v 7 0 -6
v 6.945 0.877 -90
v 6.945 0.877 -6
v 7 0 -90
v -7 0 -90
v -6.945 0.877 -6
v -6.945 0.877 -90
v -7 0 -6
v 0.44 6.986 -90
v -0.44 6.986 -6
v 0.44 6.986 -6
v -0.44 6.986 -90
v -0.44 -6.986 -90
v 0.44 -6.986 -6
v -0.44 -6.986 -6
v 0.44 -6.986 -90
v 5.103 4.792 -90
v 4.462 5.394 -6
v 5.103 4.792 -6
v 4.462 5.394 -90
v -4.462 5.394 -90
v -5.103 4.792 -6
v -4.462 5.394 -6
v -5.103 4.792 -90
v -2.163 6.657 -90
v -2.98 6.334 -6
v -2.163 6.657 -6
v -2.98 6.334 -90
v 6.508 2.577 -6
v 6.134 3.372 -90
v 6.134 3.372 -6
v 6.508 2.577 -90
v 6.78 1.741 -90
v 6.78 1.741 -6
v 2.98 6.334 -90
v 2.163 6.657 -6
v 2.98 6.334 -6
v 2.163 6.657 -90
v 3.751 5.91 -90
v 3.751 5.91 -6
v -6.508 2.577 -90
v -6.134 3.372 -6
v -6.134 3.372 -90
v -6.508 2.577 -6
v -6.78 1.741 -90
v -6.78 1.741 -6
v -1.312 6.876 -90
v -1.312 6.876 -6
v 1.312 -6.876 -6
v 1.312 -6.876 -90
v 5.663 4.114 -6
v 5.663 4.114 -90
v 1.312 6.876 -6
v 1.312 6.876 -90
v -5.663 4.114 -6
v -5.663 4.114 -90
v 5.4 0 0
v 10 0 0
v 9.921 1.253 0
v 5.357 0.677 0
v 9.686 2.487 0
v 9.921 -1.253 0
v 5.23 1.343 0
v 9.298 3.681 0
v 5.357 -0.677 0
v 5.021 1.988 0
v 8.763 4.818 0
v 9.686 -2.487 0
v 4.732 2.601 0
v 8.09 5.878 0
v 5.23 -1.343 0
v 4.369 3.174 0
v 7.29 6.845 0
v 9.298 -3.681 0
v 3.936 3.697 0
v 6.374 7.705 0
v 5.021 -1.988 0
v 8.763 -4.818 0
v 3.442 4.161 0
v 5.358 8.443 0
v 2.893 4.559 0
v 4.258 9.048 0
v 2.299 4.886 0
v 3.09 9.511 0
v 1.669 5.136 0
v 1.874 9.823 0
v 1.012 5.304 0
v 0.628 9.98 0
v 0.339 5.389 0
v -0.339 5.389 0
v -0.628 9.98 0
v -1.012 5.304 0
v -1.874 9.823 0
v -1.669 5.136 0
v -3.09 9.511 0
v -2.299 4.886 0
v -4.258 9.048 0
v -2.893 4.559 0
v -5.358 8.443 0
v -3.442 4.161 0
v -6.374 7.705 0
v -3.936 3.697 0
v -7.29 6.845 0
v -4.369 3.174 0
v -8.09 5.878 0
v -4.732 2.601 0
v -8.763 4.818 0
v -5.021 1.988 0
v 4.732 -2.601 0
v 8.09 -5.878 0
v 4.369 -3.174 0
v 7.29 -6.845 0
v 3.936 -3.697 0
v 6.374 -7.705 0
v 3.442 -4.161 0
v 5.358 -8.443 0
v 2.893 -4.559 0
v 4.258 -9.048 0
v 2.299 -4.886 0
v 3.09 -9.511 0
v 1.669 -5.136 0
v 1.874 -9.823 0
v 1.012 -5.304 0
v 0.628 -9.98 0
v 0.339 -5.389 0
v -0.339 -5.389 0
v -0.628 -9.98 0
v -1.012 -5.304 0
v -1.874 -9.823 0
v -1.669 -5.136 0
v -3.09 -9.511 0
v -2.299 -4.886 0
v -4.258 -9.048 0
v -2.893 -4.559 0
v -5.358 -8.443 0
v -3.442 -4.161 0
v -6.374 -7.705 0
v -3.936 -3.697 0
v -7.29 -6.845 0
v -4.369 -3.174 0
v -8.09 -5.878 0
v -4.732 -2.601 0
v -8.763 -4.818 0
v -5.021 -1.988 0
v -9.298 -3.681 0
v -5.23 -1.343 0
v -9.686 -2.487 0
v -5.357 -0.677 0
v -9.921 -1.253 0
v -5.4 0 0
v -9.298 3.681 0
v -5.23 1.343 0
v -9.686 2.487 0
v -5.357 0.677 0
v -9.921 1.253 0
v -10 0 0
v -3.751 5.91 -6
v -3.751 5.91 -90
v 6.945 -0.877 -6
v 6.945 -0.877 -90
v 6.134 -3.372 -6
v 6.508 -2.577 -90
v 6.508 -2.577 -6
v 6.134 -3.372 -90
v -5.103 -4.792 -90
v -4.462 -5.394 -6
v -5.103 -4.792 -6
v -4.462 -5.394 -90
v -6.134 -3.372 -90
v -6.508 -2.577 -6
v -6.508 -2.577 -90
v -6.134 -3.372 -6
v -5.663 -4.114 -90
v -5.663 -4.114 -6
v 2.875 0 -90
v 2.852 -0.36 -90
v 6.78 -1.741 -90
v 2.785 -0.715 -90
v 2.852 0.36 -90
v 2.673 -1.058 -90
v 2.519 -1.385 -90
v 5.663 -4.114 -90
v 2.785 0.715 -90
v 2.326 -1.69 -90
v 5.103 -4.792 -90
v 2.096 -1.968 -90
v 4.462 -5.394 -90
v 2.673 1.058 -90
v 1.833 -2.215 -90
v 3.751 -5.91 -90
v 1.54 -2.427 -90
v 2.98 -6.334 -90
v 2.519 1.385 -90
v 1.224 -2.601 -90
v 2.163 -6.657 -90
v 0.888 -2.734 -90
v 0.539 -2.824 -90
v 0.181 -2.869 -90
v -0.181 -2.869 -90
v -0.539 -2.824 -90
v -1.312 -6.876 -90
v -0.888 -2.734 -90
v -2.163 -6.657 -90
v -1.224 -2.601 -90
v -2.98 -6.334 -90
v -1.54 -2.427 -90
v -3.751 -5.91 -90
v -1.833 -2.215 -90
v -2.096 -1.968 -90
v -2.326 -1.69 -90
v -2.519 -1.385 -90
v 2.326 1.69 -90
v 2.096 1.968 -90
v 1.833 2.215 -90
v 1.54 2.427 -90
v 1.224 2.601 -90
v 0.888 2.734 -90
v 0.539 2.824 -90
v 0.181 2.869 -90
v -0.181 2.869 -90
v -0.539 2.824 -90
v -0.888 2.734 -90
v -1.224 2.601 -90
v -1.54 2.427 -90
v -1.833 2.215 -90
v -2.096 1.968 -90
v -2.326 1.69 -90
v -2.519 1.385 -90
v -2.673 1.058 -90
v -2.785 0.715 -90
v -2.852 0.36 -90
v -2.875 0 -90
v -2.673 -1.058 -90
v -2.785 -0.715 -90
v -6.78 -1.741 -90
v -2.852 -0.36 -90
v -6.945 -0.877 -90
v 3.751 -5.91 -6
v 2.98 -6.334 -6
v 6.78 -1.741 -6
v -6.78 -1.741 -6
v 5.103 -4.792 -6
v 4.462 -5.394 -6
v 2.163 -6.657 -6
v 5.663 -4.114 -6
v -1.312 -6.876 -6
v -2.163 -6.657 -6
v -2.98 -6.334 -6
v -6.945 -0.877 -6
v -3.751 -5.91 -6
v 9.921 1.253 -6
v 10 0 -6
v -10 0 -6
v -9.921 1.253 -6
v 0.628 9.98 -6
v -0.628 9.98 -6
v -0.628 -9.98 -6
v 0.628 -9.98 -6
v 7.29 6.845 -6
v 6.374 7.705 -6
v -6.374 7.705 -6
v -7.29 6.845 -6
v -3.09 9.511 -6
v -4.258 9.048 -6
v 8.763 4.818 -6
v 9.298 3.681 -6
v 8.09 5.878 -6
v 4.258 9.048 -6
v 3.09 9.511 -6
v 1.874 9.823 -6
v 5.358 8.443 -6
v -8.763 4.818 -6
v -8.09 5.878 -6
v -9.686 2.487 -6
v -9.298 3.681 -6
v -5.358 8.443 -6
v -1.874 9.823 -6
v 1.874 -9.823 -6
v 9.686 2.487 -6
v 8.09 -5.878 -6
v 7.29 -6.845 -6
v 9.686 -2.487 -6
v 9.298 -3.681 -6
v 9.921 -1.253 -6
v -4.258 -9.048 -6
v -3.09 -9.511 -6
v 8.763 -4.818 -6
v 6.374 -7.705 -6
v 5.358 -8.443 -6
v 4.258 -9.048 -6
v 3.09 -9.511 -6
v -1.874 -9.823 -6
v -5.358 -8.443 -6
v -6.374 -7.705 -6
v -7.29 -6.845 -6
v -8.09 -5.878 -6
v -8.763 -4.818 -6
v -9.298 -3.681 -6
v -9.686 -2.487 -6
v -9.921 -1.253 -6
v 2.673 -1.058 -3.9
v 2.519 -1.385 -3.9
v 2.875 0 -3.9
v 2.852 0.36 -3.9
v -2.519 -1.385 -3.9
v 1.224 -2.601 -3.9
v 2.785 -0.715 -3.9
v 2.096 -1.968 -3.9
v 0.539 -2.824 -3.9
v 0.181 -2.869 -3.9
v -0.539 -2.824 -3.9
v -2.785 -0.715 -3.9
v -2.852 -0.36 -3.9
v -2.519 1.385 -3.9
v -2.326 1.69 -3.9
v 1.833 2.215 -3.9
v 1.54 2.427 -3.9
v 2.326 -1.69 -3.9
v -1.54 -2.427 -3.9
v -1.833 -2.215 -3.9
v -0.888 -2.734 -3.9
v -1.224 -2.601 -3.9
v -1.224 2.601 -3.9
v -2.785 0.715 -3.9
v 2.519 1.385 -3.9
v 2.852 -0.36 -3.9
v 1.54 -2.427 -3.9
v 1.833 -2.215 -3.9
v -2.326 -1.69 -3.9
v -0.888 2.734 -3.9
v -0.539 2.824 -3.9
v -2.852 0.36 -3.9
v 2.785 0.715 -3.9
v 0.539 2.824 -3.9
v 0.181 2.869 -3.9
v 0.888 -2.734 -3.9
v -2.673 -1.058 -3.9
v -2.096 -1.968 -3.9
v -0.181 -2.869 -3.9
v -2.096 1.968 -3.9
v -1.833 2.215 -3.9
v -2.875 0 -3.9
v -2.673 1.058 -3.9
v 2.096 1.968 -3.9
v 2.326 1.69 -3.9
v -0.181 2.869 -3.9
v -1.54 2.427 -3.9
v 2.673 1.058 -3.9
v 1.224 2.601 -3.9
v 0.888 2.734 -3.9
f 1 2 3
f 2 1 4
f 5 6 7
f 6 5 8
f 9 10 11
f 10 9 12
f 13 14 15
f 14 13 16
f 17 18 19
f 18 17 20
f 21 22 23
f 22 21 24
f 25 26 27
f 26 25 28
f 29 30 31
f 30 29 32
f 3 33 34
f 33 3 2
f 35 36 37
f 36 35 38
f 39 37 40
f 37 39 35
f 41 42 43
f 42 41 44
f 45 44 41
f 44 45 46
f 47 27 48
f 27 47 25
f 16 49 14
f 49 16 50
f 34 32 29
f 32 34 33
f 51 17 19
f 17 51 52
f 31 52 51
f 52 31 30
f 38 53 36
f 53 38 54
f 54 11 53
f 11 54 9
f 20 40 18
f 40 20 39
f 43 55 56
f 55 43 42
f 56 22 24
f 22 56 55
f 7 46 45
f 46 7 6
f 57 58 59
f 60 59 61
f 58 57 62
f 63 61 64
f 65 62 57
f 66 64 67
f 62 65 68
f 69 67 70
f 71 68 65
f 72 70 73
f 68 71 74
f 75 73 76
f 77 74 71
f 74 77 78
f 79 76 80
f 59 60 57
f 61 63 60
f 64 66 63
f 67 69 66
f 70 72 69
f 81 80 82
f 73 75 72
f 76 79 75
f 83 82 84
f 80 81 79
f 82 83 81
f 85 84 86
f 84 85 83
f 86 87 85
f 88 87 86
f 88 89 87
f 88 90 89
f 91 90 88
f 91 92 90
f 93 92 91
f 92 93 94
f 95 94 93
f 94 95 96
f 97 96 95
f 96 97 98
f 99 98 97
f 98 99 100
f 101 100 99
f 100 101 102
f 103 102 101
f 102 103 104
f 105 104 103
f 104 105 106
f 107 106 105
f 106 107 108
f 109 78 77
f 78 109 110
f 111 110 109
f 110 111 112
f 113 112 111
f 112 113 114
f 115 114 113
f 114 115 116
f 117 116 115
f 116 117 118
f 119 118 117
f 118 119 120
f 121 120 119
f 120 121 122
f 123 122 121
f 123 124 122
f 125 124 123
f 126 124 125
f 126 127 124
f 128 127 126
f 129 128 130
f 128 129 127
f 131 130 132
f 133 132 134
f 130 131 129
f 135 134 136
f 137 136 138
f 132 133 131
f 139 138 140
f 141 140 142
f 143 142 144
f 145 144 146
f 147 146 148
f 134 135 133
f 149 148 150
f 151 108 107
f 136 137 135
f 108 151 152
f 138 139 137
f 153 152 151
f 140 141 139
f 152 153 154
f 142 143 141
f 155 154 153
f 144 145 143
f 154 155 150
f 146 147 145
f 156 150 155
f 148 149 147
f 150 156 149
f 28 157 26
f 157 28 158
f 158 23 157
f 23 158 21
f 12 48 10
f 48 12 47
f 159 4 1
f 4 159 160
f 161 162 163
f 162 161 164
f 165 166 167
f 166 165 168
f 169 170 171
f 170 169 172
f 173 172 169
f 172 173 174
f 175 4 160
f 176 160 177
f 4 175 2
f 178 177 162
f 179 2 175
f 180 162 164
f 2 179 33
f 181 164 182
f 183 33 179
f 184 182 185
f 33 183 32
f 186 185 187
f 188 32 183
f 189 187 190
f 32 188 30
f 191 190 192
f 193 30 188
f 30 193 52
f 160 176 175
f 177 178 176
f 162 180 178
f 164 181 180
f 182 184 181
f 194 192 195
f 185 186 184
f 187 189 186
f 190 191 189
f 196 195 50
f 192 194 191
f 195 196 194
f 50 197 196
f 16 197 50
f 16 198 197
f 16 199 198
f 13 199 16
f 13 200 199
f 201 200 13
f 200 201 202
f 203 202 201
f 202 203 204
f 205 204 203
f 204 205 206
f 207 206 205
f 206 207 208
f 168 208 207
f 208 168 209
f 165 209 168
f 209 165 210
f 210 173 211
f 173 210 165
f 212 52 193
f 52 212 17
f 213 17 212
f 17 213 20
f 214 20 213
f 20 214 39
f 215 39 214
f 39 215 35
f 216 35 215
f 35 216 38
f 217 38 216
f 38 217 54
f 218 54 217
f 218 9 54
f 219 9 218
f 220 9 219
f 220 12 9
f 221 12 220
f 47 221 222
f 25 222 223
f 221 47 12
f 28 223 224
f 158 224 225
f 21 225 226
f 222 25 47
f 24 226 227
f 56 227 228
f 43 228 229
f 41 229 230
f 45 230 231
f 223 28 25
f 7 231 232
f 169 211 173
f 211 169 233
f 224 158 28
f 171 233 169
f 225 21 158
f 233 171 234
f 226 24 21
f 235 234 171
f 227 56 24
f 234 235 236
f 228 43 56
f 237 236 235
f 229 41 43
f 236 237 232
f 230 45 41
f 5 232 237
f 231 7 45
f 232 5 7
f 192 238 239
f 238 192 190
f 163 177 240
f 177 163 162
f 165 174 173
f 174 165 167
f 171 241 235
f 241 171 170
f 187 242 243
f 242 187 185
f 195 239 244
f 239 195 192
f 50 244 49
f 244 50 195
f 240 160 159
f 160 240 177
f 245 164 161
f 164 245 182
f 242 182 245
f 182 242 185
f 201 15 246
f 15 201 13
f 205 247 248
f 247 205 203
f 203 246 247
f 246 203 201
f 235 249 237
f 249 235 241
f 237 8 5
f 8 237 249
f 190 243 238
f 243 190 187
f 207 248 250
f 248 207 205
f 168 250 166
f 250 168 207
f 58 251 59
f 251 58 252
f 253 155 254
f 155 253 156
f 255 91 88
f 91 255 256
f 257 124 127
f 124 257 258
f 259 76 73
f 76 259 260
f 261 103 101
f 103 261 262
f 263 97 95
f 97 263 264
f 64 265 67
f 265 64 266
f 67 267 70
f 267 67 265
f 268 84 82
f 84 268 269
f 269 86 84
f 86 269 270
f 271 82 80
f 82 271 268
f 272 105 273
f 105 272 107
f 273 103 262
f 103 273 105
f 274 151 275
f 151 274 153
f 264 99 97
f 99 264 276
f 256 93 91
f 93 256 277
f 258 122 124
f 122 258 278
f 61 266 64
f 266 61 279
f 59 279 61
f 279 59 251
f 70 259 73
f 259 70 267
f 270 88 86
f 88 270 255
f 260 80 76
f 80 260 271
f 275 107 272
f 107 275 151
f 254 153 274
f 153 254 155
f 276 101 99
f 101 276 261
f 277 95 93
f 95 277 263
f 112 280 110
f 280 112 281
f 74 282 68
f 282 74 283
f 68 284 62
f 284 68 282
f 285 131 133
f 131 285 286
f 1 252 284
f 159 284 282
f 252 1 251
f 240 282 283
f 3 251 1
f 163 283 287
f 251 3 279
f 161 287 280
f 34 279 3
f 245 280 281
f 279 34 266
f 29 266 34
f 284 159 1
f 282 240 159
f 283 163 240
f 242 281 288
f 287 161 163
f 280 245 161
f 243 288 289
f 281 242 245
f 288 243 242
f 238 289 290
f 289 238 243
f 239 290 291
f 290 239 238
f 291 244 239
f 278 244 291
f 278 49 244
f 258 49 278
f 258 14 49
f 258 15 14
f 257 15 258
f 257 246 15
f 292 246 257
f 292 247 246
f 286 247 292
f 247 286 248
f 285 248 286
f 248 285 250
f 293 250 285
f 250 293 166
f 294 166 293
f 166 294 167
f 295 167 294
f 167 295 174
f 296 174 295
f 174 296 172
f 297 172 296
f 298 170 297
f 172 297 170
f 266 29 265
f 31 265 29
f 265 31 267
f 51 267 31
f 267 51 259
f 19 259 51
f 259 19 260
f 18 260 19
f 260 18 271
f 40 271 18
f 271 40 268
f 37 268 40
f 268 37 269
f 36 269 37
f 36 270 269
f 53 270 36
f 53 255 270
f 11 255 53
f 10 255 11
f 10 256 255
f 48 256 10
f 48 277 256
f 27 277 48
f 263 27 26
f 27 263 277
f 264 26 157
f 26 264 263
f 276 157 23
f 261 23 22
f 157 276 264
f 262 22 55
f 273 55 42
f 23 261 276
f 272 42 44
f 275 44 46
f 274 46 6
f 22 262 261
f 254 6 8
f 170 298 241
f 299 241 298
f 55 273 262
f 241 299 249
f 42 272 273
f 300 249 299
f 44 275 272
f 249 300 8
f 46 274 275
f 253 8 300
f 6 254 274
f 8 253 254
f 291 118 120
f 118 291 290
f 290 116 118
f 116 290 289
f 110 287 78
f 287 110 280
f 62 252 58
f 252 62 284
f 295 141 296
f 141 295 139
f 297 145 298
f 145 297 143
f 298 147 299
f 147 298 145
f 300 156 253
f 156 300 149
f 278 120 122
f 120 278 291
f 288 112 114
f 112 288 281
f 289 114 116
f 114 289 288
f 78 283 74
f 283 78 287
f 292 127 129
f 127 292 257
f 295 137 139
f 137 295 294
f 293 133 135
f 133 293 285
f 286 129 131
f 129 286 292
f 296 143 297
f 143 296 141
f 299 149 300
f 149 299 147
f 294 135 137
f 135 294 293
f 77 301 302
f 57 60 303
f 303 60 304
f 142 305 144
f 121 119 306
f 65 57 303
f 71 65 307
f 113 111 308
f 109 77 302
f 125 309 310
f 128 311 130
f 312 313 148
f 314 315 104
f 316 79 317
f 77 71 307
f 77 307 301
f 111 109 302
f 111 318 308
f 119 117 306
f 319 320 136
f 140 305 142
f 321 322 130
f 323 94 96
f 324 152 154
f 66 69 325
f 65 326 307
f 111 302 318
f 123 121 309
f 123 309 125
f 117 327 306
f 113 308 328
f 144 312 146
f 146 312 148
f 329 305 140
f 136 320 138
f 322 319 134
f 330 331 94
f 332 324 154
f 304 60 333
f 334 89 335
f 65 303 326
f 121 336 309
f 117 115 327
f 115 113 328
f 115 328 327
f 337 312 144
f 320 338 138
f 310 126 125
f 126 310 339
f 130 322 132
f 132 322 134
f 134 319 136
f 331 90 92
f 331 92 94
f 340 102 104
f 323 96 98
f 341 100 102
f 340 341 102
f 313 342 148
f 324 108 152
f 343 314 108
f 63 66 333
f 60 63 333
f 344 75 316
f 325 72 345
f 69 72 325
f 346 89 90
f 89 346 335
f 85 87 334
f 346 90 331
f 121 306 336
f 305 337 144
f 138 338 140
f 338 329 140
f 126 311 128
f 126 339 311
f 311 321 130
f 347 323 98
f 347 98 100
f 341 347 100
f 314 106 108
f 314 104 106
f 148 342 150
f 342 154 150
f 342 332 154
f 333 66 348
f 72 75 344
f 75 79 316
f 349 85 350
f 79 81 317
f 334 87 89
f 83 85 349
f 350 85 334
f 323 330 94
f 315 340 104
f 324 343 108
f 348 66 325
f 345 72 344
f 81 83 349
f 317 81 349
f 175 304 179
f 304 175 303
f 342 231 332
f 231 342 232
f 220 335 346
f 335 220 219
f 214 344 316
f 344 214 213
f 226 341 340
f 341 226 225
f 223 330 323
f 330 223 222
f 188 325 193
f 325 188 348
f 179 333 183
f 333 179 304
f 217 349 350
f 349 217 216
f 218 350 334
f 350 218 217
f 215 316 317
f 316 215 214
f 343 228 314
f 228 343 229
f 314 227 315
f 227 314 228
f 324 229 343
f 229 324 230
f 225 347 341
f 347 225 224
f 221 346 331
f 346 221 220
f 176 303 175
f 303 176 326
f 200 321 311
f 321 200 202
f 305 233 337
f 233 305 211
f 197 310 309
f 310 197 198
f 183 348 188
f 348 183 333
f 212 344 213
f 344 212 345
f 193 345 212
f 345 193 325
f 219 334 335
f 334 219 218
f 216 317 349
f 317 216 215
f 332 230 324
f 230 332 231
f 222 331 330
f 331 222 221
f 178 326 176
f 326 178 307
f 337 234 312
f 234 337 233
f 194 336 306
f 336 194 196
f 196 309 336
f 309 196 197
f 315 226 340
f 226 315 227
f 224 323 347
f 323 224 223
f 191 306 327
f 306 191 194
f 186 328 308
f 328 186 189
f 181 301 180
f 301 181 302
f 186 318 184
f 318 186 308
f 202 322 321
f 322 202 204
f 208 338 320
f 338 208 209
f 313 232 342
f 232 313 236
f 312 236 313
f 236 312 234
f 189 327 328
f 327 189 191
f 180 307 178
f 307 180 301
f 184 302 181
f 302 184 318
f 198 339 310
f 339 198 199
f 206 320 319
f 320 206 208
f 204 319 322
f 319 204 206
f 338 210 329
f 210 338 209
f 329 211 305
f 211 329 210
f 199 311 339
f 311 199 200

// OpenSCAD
$fn = 50;


difference() {
	union() {
		translate(v = [0, 0, -90.0000000000]) {
			cylinder(h = 90, r = 7.0000000000);
		}
		translate(v = [0, 0, -6.0000000000]) {
			cylinder(h = 6, r = 10.0000000000);
		}
	}
	union() {
		translate(v = [0, 0, 0]) {
			rotate(a = [0, 0, 0]) {
				difference() {
					union() {
						#translate(v = [0, 0, -90.0000000000]) {
							cylinder(h = 90, r = 2.6000000000);
						}
						#translate(v = [0, 0, -3.9000000000]) {
							cylinder(h = 3.9000000000, r1 = 2.8750000000, r2 = 5.4000000000);
						}
						#translate(v = [0, 0, -90.0000000000]) {
							cylinder(h = 90, r = 2.8750000000);
						}
						#translate(v = [0, 0, -90.0000000000]) {
							cylinder(h = 90, r = 2.6000000000);
						}
					}
					union();
				}
			}
		}
	}
}
